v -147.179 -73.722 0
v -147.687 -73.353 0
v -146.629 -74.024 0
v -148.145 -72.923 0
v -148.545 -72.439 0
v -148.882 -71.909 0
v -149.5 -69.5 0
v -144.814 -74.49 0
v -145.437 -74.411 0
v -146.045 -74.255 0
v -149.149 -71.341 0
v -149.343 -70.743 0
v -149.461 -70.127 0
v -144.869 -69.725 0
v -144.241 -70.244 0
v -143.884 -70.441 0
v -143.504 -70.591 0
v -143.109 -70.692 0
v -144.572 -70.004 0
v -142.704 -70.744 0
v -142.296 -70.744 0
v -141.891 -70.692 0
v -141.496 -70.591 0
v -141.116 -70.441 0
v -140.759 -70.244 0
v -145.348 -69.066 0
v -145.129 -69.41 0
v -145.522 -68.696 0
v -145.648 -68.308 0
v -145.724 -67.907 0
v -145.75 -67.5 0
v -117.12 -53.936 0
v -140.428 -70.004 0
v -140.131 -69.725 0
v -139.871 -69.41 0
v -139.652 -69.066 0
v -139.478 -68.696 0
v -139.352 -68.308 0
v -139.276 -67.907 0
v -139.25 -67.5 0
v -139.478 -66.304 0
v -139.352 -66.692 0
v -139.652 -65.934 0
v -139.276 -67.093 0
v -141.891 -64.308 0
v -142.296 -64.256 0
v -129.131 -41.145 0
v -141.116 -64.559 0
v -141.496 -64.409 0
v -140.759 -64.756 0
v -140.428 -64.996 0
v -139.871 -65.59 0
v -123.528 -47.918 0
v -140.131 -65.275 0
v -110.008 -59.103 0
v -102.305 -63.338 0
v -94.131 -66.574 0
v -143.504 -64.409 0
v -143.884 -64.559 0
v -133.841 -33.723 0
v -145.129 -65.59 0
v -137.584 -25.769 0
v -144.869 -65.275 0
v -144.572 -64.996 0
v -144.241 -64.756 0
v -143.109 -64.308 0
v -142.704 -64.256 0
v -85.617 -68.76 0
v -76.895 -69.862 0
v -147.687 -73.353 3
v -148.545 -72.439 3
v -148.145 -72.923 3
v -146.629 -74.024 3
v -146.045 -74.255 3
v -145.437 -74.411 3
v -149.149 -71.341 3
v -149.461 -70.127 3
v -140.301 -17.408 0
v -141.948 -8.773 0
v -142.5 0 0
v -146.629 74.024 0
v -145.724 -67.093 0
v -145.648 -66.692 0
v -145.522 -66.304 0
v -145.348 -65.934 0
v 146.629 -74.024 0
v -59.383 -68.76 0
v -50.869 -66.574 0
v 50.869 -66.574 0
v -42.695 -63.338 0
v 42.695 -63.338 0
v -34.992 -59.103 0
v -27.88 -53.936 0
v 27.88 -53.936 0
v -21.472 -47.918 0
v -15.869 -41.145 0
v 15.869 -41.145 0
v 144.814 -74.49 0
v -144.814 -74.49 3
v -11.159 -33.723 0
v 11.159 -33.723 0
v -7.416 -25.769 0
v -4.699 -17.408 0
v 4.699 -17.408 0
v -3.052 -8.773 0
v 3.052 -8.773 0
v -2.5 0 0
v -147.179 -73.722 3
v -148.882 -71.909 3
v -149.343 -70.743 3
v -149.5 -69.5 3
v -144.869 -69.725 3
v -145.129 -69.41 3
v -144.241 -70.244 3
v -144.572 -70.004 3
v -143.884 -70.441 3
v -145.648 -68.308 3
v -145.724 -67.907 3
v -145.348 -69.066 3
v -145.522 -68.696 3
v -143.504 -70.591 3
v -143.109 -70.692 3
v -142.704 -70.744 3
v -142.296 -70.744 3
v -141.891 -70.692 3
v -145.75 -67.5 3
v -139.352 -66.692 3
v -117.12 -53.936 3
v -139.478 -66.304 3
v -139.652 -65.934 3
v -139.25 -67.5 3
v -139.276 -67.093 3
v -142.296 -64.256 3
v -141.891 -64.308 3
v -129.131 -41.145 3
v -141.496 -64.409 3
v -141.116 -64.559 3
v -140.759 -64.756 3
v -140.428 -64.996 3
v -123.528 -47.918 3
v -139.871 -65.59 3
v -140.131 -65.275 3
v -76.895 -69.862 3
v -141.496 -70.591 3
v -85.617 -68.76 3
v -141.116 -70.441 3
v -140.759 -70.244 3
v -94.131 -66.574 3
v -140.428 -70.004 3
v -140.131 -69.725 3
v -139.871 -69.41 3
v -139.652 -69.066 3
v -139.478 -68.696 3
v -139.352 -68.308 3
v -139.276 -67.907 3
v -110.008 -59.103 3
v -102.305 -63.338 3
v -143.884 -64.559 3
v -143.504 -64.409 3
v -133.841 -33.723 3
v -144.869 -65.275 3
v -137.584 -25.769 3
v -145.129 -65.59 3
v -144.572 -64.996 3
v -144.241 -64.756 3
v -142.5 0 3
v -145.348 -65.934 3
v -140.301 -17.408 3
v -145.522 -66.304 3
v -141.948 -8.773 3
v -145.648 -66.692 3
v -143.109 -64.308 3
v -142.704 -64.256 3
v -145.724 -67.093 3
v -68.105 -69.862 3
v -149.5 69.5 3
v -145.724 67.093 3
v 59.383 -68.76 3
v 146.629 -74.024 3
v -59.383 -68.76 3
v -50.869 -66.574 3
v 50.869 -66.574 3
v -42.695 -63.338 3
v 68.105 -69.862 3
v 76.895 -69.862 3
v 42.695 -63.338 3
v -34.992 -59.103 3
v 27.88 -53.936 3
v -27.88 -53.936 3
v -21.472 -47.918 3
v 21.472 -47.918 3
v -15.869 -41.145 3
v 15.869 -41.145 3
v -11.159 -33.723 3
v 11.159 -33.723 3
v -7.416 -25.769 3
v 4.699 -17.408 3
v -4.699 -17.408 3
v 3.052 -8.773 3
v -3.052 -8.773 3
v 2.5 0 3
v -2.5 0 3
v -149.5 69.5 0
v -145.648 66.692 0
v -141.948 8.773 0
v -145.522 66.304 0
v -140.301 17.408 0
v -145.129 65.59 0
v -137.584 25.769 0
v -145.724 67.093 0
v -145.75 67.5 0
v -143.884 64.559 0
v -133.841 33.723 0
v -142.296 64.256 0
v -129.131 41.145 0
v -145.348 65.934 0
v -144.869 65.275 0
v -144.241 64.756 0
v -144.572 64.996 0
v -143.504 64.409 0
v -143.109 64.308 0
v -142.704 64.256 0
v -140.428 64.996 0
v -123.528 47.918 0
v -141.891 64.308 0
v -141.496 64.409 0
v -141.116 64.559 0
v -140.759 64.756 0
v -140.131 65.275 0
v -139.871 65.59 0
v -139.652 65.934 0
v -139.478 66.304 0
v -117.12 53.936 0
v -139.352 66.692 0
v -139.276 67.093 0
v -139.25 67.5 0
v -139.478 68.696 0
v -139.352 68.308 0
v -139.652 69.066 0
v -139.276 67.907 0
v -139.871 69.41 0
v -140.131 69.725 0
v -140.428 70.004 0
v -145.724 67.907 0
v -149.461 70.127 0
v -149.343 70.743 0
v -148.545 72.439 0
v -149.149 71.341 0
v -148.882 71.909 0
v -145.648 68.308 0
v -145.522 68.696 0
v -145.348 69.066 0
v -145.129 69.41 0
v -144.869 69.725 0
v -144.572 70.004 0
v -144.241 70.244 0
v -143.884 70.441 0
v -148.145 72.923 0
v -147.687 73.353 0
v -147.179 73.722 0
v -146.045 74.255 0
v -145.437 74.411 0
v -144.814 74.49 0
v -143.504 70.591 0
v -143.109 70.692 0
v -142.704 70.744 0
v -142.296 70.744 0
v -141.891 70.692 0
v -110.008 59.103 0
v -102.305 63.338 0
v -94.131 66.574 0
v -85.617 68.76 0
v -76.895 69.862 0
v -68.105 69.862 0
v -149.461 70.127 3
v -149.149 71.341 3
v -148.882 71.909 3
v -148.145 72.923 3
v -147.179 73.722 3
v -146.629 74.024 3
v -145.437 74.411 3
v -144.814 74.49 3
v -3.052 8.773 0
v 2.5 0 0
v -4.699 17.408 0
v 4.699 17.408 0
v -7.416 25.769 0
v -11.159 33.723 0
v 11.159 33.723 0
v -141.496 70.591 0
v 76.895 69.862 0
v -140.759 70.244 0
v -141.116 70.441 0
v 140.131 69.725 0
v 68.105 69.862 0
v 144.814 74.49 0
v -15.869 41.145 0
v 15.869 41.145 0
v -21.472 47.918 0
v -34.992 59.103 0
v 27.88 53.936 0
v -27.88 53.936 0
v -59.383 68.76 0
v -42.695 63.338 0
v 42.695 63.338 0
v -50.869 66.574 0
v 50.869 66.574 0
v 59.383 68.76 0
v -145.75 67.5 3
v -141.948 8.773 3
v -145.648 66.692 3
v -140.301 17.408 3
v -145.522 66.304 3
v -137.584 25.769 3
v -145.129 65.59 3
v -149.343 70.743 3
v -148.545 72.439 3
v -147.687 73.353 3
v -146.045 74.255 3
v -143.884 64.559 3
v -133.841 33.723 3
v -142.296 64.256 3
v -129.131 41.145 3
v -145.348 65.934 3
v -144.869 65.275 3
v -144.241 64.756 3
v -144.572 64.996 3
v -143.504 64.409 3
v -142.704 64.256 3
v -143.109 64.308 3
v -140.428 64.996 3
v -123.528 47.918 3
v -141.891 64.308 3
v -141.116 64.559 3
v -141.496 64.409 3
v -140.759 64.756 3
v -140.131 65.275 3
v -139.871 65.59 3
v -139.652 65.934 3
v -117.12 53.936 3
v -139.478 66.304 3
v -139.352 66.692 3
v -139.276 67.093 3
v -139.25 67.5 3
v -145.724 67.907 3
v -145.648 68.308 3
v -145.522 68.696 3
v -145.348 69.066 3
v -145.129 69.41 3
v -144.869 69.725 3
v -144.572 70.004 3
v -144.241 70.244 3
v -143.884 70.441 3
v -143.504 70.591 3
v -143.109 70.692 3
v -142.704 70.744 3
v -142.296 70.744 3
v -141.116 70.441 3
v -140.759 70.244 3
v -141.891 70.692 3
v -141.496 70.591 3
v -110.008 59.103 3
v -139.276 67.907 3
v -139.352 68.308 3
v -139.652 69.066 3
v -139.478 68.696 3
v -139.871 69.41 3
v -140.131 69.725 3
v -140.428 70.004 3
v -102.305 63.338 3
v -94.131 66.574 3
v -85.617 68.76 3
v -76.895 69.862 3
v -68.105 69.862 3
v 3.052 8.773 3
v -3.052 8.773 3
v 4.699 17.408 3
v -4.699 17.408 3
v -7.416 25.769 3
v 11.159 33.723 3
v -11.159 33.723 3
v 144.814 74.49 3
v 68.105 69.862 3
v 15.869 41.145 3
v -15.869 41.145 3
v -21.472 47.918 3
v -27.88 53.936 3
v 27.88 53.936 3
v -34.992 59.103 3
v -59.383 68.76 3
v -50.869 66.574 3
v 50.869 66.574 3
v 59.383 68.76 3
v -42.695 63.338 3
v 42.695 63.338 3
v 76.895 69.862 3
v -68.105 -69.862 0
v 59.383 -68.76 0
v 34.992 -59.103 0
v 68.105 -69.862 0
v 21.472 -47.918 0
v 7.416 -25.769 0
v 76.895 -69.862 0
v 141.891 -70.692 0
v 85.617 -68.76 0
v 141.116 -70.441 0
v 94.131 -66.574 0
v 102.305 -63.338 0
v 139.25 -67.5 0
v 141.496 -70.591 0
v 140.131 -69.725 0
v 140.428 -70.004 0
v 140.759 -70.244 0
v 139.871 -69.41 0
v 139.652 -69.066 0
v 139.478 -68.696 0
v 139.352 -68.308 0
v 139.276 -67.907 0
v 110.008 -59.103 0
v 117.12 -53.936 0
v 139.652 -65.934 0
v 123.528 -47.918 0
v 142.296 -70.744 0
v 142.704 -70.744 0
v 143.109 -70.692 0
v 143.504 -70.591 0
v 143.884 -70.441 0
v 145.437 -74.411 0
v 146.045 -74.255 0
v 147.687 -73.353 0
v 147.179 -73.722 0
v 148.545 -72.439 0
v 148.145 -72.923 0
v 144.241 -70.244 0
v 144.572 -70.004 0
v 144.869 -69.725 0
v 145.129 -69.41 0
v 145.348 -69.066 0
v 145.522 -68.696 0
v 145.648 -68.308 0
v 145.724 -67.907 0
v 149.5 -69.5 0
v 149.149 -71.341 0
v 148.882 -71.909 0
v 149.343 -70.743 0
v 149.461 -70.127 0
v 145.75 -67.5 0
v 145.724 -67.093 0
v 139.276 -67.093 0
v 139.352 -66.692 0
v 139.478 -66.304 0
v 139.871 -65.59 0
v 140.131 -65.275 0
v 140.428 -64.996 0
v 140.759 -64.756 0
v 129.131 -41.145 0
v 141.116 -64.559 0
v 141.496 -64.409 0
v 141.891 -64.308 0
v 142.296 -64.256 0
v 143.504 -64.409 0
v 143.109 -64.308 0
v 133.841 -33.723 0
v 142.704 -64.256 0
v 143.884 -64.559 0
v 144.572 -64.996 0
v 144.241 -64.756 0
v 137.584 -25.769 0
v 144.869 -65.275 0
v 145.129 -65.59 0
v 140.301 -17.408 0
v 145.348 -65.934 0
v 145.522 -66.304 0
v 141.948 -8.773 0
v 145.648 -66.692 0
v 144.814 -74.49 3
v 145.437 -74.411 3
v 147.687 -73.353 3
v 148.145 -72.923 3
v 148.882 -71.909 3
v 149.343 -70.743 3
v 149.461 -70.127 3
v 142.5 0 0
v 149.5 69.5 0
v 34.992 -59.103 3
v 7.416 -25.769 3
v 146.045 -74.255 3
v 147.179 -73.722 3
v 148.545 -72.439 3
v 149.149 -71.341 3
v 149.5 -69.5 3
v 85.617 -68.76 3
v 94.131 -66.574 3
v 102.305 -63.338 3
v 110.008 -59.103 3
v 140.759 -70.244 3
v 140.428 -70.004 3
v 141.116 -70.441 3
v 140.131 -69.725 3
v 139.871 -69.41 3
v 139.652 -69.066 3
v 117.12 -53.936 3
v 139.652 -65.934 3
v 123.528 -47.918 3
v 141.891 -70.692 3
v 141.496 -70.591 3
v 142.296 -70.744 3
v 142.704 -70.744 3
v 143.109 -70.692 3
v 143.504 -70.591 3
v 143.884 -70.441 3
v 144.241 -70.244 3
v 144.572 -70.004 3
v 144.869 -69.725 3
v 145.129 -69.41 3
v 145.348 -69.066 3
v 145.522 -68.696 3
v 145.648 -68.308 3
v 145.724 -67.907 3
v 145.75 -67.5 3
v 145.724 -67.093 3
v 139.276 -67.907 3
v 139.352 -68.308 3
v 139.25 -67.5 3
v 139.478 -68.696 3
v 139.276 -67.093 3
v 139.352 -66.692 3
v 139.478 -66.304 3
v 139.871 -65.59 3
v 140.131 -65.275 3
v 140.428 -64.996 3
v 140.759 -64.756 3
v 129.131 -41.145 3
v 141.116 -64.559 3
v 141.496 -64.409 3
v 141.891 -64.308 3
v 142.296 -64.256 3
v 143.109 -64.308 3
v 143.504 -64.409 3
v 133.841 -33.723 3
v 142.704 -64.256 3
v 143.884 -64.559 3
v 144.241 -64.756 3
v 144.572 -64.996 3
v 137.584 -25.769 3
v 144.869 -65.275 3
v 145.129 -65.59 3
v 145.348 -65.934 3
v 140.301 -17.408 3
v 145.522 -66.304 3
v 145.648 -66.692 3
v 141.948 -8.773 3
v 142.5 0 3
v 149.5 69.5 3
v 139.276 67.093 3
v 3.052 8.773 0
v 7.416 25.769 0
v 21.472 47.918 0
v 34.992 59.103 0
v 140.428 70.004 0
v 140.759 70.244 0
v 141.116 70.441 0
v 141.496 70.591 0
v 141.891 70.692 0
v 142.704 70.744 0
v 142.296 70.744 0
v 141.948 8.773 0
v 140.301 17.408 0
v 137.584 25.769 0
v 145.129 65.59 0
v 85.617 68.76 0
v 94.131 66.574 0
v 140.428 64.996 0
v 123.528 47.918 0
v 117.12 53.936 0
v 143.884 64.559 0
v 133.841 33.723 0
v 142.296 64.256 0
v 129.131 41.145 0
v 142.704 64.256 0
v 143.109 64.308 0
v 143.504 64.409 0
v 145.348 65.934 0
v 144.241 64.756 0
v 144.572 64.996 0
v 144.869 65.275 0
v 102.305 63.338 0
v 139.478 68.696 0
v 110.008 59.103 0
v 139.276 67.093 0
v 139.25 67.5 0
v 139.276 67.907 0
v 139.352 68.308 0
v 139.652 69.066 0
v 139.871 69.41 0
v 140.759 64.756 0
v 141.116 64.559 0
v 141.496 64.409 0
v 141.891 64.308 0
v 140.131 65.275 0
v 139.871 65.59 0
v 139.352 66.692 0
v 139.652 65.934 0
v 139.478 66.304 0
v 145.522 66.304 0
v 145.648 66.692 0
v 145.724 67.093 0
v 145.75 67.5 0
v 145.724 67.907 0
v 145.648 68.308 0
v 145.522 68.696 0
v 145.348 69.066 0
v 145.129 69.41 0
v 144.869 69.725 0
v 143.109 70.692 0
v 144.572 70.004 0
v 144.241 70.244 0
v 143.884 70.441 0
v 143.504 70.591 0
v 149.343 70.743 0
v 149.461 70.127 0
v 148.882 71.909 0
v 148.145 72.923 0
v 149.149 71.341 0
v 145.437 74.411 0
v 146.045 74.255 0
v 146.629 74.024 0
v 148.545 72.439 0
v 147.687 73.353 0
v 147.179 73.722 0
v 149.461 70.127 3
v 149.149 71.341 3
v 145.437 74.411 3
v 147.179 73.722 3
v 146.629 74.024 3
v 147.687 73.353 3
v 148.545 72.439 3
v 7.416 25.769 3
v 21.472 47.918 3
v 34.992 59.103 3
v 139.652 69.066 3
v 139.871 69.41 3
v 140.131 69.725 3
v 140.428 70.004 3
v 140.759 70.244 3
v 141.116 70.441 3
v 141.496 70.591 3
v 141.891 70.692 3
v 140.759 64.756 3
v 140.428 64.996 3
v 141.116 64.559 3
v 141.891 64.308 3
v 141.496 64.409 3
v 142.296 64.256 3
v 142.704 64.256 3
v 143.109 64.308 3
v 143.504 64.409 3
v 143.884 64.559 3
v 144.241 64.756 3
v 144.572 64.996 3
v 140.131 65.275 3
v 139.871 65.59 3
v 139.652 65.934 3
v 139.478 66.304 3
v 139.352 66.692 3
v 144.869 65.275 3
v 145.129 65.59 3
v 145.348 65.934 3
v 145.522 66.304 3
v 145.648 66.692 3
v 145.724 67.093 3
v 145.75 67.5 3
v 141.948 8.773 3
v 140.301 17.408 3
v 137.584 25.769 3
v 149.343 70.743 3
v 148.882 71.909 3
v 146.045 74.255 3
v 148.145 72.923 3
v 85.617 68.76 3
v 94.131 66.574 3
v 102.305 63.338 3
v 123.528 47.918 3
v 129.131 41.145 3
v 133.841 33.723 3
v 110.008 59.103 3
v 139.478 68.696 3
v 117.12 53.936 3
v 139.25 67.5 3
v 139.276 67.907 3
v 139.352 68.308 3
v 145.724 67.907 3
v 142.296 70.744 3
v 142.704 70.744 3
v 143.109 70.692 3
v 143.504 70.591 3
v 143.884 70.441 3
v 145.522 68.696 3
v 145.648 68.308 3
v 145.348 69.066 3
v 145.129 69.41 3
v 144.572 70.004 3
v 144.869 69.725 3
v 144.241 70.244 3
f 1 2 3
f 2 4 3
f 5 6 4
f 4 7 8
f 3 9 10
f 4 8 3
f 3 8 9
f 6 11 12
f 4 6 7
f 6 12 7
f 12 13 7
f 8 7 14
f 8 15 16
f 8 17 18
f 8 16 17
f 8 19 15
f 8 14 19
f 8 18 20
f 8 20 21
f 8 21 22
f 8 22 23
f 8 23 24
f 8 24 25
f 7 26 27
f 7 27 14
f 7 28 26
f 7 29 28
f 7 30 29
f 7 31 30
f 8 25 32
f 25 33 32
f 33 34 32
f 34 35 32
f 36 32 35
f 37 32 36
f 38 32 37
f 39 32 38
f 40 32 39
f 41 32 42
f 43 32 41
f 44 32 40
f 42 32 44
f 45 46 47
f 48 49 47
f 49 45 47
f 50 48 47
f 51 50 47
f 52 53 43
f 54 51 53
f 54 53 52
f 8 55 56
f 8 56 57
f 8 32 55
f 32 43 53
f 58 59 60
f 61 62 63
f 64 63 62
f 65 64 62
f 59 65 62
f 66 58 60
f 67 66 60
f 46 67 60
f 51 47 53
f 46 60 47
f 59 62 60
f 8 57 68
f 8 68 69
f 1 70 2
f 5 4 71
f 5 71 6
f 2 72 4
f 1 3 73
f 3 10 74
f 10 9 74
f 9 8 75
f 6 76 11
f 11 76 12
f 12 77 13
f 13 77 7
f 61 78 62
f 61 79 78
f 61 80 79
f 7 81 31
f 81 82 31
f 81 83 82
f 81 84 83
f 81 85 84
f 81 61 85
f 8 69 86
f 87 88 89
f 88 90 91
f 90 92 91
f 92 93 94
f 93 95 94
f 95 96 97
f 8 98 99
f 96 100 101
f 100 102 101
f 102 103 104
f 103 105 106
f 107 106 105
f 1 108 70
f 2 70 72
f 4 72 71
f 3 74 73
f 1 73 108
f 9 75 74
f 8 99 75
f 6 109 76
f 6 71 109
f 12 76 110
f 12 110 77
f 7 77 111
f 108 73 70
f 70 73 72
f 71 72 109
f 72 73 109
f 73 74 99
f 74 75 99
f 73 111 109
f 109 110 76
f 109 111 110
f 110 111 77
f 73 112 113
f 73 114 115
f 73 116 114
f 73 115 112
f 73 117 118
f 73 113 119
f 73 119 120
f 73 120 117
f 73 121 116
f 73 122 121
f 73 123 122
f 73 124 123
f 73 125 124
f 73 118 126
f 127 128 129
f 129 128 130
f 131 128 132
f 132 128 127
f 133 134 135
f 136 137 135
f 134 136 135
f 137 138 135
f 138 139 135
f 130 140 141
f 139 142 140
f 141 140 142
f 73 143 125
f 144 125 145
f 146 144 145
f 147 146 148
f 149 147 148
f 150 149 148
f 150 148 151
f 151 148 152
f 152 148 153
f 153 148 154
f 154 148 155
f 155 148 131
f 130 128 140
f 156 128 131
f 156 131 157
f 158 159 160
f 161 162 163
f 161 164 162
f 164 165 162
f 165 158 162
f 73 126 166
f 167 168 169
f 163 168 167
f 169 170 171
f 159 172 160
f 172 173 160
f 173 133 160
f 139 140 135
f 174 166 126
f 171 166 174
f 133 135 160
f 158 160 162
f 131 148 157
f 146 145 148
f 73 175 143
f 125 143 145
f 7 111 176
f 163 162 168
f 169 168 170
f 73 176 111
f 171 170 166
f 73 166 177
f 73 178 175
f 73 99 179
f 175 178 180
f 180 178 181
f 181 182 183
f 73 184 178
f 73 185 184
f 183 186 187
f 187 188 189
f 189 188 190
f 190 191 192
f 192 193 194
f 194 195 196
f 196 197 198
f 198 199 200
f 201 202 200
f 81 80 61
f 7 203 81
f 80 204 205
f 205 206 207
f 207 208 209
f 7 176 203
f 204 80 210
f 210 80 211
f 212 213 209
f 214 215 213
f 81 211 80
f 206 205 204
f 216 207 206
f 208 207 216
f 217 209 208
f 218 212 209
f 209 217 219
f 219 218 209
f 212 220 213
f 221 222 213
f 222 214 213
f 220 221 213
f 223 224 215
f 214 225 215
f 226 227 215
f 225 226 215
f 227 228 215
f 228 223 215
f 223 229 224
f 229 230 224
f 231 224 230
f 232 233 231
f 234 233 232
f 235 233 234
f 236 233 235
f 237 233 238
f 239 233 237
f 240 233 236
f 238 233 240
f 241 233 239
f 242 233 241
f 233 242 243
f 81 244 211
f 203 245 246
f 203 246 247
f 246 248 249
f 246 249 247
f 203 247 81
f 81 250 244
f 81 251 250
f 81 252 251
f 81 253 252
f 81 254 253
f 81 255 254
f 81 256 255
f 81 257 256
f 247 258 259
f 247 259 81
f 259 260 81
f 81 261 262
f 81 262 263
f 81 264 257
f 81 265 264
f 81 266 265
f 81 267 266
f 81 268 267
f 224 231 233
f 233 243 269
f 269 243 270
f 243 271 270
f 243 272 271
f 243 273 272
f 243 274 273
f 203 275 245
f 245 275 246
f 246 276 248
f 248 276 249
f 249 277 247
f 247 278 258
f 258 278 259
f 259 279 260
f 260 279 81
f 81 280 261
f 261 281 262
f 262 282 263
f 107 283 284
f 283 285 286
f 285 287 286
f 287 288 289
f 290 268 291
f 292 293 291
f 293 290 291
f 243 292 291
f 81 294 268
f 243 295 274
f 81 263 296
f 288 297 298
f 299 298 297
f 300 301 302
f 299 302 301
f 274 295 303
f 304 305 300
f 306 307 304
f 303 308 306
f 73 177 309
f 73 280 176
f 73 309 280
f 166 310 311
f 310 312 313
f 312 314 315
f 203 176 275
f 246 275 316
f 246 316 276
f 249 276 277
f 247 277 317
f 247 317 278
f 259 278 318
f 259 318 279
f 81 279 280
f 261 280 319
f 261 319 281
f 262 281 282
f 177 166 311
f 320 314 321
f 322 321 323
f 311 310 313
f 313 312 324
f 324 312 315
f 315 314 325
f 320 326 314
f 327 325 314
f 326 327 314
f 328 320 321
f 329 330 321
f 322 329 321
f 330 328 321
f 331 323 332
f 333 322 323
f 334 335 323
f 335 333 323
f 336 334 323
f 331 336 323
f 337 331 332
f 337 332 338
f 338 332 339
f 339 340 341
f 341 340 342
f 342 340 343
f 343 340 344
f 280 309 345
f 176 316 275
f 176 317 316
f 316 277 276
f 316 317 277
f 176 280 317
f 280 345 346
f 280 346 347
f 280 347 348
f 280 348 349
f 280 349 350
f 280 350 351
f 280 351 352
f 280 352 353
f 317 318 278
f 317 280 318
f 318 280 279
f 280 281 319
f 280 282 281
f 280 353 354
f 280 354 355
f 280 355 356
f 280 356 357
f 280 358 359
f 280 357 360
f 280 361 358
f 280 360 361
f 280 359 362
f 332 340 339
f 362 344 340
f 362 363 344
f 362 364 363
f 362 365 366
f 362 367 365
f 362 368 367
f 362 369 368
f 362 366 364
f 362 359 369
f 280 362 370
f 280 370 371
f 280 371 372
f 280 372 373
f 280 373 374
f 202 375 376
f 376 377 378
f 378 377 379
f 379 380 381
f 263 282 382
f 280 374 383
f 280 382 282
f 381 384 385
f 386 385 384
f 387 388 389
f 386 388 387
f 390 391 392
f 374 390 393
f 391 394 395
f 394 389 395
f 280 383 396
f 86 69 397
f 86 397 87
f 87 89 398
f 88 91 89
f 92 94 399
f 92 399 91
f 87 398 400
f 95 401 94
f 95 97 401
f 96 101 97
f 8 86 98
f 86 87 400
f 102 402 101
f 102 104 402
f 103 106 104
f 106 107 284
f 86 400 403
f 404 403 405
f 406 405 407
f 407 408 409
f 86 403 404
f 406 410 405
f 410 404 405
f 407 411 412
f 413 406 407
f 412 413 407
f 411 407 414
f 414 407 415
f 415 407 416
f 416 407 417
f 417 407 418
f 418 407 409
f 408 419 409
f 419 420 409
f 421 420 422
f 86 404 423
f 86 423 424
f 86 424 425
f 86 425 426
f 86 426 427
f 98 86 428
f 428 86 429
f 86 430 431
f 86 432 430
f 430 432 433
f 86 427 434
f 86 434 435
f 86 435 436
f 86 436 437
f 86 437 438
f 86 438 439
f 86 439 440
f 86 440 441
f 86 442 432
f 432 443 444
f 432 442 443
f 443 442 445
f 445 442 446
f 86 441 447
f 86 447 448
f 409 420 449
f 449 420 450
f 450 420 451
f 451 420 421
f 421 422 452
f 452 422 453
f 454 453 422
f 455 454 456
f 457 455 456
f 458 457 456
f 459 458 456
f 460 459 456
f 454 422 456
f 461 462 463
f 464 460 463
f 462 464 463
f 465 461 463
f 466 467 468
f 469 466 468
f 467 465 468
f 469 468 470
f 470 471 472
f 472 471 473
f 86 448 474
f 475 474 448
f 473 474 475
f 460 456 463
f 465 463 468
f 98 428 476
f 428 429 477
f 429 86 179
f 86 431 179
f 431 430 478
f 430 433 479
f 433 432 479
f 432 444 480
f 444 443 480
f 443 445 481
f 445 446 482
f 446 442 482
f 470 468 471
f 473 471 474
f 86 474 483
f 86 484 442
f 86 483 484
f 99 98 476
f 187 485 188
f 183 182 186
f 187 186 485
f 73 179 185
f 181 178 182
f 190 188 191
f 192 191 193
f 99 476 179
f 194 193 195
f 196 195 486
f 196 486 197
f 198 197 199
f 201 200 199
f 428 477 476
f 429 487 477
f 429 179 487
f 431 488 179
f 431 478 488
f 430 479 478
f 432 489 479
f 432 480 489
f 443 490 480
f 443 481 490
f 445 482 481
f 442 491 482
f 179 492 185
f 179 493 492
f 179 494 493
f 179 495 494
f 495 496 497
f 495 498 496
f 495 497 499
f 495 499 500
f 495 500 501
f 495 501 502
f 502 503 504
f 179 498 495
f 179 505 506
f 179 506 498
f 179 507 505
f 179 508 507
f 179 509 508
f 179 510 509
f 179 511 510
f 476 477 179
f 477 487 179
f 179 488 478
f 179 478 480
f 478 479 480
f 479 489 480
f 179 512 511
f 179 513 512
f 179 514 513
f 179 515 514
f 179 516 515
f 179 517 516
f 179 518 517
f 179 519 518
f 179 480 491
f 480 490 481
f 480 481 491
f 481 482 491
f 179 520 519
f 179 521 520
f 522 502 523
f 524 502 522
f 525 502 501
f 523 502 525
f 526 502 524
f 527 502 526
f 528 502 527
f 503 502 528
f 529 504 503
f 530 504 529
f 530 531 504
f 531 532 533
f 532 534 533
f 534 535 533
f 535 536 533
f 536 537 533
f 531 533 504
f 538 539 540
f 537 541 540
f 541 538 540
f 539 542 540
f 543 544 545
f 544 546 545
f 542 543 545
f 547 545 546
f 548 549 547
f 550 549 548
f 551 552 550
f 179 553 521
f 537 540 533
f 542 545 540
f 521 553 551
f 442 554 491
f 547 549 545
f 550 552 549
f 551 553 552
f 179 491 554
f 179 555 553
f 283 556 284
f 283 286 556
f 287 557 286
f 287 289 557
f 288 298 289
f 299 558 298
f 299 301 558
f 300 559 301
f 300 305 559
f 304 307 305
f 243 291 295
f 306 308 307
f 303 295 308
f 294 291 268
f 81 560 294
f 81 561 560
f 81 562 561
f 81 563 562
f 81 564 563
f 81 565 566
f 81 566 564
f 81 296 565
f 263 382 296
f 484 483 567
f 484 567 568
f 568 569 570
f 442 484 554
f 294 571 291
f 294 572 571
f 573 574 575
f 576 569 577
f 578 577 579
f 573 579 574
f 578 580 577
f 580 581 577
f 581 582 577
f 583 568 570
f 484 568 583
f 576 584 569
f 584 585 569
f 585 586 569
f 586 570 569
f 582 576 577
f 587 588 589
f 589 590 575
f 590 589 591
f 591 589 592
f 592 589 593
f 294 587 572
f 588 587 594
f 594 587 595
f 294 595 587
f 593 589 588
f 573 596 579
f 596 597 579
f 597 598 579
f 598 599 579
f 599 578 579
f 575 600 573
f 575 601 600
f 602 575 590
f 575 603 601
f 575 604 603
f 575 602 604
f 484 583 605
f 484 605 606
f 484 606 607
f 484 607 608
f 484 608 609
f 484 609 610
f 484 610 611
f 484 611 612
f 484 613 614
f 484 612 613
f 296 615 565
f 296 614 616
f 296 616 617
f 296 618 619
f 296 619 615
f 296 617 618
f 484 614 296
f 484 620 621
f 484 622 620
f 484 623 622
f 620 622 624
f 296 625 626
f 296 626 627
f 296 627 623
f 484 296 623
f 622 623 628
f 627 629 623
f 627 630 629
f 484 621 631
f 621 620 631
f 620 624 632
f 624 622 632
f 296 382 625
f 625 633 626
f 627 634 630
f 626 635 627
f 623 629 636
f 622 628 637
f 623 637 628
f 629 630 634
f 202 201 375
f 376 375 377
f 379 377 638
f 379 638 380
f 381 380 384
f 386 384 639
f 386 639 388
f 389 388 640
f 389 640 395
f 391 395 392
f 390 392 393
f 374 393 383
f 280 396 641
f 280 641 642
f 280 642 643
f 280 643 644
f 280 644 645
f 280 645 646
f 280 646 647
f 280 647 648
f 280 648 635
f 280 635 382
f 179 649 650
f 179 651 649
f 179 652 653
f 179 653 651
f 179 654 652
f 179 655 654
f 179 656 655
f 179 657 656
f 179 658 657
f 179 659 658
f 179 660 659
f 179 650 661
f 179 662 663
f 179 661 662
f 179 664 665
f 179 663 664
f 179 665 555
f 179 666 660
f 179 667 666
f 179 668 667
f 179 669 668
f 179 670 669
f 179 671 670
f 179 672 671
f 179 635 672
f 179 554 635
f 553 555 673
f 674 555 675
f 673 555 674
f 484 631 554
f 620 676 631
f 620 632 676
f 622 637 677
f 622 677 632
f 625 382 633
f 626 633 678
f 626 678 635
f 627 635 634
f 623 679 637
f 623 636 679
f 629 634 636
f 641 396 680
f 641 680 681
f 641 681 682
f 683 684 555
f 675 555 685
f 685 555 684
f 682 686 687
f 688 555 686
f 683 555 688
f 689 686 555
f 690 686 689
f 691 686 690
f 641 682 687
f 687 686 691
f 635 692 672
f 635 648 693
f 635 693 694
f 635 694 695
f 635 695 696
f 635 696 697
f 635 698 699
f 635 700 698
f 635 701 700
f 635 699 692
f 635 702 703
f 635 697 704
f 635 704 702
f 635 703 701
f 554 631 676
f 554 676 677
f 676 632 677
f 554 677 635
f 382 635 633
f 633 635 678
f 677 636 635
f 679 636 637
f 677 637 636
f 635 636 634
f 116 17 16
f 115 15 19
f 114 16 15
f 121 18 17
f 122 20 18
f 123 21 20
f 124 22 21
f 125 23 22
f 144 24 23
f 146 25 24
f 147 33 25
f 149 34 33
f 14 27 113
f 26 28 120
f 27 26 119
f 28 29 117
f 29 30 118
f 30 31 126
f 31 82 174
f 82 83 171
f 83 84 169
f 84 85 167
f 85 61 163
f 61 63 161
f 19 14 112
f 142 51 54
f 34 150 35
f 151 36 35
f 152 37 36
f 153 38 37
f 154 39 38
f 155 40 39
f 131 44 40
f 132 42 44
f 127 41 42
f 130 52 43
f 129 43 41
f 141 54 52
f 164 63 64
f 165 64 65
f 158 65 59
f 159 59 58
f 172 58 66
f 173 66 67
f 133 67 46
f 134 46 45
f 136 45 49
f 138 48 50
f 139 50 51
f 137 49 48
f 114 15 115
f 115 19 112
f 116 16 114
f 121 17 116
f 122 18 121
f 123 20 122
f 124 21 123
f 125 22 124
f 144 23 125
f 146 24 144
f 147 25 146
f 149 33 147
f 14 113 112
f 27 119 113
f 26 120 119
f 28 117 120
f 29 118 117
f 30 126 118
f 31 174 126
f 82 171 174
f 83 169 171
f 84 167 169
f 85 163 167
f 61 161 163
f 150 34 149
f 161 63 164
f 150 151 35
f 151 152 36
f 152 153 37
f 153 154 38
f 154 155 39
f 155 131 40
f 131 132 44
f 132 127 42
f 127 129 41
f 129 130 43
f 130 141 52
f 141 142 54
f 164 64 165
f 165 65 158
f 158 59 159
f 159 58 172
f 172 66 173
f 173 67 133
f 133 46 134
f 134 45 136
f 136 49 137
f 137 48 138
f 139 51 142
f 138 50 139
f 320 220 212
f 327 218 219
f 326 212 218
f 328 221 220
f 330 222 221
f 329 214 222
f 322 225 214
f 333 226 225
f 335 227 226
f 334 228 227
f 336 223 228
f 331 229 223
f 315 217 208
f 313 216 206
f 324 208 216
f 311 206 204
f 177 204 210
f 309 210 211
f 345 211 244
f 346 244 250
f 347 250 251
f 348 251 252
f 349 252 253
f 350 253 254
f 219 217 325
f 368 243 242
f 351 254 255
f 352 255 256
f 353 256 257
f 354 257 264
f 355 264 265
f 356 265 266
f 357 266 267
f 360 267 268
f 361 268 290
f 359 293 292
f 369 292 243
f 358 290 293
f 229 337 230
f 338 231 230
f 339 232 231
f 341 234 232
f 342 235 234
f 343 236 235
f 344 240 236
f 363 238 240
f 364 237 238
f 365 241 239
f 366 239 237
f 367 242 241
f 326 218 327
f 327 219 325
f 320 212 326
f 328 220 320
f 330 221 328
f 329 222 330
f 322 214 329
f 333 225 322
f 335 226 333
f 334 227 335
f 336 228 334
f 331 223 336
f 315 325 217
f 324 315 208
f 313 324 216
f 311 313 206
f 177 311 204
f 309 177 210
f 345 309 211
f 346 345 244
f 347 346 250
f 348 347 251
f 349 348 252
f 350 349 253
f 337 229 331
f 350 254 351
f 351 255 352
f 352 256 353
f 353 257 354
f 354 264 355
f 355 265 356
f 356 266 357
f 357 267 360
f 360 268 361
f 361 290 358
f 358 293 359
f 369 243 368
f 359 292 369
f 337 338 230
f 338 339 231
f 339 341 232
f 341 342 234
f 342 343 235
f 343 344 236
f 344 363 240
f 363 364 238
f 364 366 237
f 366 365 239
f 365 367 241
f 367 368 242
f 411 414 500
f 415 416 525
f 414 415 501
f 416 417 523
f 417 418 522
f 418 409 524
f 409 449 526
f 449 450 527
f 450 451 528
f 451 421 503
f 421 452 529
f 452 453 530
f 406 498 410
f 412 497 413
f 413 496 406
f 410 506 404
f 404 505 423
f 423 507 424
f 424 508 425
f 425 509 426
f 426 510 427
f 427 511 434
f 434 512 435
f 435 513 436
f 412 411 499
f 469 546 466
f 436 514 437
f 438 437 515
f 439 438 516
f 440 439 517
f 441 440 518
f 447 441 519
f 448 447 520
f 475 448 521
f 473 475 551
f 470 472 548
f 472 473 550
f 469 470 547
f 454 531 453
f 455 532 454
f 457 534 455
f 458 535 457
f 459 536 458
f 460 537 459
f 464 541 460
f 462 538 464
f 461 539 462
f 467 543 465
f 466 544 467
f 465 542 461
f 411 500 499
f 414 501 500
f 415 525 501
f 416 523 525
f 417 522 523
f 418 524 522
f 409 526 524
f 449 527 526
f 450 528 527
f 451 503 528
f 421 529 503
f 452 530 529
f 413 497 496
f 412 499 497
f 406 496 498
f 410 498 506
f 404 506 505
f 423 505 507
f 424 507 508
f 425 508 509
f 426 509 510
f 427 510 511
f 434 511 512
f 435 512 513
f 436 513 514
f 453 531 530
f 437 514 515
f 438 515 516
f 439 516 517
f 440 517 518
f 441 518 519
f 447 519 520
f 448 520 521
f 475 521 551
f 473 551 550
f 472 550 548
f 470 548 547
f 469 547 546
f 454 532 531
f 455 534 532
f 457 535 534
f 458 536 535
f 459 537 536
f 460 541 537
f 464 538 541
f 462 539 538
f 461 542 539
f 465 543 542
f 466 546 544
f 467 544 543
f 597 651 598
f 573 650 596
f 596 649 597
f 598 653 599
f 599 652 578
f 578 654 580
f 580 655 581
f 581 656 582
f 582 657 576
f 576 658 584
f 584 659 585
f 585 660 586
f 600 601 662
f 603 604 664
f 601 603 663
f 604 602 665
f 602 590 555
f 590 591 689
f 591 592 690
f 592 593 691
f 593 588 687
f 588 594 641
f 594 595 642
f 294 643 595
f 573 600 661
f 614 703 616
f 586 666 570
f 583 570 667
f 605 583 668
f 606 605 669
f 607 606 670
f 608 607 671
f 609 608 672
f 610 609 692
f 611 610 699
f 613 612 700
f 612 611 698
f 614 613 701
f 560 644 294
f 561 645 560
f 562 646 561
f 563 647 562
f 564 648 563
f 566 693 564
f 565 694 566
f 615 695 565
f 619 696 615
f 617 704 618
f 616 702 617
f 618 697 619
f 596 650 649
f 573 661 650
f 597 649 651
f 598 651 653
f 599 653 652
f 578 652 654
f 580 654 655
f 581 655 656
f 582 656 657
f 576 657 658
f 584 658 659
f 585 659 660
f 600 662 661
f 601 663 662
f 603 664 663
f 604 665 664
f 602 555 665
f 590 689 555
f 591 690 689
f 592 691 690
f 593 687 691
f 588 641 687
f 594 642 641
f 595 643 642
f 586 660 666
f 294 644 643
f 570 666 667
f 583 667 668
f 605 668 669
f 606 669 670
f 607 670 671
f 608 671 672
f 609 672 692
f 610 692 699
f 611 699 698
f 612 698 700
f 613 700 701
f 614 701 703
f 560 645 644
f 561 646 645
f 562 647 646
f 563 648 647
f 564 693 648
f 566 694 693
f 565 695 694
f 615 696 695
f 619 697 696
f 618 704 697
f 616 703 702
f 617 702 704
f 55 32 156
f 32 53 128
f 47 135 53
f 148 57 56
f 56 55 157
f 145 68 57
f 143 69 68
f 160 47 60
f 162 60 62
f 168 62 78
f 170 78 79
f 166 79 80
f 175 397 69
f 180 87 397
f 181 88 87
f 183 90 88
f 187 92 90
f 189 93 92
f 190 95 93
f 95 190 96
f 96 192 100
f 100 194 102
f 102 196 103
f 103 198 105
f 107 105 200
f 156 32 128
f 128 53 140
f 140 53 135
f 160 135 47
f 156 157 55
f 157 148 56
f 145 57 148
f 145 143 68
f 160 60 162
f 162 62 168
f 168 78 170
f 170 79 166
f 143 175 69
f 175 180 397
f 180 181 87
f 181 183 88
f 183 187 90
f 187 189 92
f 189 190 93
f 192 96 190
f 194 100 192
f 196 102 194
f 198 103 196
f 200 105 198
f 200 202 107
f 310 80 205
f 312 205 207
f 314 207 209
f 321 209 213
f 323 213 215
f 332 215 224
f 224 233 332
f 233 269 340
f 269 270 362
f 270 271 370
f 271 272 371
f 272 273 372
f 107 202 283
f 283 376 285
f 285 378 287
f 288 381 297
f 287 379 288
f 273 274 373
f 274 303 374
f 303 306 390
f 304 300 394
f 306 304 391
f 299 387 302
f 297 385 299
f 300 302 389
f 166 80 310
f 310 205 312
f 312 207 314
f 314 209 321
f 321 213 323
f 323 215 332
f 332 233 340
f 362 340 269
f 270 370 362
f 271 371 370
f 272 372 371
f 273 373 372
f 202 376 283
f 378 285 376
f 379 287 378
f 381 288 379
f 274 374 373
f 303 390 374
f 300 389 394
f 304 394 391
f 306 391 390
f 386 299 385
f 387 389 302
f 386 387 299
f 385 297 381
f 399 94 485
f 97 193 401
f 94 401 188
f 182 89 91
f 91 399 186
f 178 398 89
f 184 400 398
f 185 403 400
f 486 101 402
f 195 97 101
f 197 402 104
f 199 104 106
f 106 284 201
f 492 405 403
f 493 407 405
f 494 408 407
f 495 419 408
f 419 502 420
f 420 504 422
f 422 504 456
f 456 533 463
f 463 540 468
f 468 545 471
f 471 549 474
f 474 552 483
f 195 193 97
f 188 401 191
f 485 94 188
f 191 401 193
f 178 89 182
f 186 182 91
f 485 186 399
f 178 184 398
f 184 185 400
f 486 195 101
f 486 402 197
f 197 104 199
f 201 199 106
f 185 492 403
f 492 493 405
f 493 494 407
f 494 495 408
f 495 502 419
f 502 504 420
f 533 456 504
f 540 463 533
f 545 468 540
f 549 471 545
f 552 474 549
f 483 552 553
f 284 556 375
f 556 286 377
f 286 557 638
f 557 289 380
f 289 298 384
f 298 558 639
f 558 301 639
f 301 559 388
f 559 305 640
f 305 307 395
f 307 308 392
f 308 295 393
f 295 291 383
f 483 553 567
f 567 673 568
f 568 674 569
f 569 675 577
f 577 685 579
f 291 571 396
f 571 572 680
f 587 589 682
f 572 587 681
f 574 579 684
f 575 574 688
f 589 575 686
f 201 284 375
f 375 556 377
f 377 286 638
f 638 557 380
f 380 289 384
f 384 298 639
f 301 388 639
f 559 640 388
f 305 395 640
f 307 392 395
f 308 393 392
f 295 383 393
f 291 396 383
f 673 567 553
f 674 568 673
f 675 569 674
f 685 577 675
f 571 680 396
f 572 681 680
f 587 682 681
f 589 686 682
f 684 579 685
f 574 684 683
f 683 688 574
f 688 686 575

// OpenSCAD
$fn = 50;

difference() {
	union() {
		hull() {
			translate(v = [-144.5, 69.5, 0]) {
				cylinder(h = 3, r = 5);
			}
			translate(v = [144.5, 69.5, 0]) {
				cylinder(h = 3, r = 5);
			}
			translate(v = [-144.5, -69.5, 0]) {
				cylinder(h = 3, r = 5);
			}
			translate(v = [144.5, -69.5, 0]) {
				cylinder(h = 3, r = 5);
			}
		}
	}
	union() {
		translate(v = [-142.5, -67.5, -100.0]) {
			cylinder(h = 200, r = 3.25);
		}
		translate(v = [-142.5, 67.5, -100.0]) {
			cylinder(h = 200, r = 3.25);
		}
		translate(v = [142.5, -67.5, -100.0]) {
			cylinder(h = 200, r = 3.25);
		}
		translate(v = [142.5, 67.5, -100.0]) {
			cylinder(h = 200, r = 3.25);
		}
		translate(v = [-142.5, -67.5, -100.0]) {
			cylinder(h = 200, r = 1.8);
		}
		translate(v = [-142.5, 67.5, -100.0]) {
			cylinder(h = 200, r = 1.8);
		}
		translate(v = [142.5, -67.5, -100.0]) {
			cylinder(h = 200, r = 1.8);
		}
		translate(v = [142.5, 67.5, -100.0]) {
			cylinder(h = 200, r = 1.8);
		}
		translate(v = [-72.5, 0, 0.0]) {
			cylinder(h = 3, r = 70.0);
		}
		translate(v = [72.5, 0, 0.0]) {
			cylinder(h = 3, r = 70.0);
		}
	}
}
